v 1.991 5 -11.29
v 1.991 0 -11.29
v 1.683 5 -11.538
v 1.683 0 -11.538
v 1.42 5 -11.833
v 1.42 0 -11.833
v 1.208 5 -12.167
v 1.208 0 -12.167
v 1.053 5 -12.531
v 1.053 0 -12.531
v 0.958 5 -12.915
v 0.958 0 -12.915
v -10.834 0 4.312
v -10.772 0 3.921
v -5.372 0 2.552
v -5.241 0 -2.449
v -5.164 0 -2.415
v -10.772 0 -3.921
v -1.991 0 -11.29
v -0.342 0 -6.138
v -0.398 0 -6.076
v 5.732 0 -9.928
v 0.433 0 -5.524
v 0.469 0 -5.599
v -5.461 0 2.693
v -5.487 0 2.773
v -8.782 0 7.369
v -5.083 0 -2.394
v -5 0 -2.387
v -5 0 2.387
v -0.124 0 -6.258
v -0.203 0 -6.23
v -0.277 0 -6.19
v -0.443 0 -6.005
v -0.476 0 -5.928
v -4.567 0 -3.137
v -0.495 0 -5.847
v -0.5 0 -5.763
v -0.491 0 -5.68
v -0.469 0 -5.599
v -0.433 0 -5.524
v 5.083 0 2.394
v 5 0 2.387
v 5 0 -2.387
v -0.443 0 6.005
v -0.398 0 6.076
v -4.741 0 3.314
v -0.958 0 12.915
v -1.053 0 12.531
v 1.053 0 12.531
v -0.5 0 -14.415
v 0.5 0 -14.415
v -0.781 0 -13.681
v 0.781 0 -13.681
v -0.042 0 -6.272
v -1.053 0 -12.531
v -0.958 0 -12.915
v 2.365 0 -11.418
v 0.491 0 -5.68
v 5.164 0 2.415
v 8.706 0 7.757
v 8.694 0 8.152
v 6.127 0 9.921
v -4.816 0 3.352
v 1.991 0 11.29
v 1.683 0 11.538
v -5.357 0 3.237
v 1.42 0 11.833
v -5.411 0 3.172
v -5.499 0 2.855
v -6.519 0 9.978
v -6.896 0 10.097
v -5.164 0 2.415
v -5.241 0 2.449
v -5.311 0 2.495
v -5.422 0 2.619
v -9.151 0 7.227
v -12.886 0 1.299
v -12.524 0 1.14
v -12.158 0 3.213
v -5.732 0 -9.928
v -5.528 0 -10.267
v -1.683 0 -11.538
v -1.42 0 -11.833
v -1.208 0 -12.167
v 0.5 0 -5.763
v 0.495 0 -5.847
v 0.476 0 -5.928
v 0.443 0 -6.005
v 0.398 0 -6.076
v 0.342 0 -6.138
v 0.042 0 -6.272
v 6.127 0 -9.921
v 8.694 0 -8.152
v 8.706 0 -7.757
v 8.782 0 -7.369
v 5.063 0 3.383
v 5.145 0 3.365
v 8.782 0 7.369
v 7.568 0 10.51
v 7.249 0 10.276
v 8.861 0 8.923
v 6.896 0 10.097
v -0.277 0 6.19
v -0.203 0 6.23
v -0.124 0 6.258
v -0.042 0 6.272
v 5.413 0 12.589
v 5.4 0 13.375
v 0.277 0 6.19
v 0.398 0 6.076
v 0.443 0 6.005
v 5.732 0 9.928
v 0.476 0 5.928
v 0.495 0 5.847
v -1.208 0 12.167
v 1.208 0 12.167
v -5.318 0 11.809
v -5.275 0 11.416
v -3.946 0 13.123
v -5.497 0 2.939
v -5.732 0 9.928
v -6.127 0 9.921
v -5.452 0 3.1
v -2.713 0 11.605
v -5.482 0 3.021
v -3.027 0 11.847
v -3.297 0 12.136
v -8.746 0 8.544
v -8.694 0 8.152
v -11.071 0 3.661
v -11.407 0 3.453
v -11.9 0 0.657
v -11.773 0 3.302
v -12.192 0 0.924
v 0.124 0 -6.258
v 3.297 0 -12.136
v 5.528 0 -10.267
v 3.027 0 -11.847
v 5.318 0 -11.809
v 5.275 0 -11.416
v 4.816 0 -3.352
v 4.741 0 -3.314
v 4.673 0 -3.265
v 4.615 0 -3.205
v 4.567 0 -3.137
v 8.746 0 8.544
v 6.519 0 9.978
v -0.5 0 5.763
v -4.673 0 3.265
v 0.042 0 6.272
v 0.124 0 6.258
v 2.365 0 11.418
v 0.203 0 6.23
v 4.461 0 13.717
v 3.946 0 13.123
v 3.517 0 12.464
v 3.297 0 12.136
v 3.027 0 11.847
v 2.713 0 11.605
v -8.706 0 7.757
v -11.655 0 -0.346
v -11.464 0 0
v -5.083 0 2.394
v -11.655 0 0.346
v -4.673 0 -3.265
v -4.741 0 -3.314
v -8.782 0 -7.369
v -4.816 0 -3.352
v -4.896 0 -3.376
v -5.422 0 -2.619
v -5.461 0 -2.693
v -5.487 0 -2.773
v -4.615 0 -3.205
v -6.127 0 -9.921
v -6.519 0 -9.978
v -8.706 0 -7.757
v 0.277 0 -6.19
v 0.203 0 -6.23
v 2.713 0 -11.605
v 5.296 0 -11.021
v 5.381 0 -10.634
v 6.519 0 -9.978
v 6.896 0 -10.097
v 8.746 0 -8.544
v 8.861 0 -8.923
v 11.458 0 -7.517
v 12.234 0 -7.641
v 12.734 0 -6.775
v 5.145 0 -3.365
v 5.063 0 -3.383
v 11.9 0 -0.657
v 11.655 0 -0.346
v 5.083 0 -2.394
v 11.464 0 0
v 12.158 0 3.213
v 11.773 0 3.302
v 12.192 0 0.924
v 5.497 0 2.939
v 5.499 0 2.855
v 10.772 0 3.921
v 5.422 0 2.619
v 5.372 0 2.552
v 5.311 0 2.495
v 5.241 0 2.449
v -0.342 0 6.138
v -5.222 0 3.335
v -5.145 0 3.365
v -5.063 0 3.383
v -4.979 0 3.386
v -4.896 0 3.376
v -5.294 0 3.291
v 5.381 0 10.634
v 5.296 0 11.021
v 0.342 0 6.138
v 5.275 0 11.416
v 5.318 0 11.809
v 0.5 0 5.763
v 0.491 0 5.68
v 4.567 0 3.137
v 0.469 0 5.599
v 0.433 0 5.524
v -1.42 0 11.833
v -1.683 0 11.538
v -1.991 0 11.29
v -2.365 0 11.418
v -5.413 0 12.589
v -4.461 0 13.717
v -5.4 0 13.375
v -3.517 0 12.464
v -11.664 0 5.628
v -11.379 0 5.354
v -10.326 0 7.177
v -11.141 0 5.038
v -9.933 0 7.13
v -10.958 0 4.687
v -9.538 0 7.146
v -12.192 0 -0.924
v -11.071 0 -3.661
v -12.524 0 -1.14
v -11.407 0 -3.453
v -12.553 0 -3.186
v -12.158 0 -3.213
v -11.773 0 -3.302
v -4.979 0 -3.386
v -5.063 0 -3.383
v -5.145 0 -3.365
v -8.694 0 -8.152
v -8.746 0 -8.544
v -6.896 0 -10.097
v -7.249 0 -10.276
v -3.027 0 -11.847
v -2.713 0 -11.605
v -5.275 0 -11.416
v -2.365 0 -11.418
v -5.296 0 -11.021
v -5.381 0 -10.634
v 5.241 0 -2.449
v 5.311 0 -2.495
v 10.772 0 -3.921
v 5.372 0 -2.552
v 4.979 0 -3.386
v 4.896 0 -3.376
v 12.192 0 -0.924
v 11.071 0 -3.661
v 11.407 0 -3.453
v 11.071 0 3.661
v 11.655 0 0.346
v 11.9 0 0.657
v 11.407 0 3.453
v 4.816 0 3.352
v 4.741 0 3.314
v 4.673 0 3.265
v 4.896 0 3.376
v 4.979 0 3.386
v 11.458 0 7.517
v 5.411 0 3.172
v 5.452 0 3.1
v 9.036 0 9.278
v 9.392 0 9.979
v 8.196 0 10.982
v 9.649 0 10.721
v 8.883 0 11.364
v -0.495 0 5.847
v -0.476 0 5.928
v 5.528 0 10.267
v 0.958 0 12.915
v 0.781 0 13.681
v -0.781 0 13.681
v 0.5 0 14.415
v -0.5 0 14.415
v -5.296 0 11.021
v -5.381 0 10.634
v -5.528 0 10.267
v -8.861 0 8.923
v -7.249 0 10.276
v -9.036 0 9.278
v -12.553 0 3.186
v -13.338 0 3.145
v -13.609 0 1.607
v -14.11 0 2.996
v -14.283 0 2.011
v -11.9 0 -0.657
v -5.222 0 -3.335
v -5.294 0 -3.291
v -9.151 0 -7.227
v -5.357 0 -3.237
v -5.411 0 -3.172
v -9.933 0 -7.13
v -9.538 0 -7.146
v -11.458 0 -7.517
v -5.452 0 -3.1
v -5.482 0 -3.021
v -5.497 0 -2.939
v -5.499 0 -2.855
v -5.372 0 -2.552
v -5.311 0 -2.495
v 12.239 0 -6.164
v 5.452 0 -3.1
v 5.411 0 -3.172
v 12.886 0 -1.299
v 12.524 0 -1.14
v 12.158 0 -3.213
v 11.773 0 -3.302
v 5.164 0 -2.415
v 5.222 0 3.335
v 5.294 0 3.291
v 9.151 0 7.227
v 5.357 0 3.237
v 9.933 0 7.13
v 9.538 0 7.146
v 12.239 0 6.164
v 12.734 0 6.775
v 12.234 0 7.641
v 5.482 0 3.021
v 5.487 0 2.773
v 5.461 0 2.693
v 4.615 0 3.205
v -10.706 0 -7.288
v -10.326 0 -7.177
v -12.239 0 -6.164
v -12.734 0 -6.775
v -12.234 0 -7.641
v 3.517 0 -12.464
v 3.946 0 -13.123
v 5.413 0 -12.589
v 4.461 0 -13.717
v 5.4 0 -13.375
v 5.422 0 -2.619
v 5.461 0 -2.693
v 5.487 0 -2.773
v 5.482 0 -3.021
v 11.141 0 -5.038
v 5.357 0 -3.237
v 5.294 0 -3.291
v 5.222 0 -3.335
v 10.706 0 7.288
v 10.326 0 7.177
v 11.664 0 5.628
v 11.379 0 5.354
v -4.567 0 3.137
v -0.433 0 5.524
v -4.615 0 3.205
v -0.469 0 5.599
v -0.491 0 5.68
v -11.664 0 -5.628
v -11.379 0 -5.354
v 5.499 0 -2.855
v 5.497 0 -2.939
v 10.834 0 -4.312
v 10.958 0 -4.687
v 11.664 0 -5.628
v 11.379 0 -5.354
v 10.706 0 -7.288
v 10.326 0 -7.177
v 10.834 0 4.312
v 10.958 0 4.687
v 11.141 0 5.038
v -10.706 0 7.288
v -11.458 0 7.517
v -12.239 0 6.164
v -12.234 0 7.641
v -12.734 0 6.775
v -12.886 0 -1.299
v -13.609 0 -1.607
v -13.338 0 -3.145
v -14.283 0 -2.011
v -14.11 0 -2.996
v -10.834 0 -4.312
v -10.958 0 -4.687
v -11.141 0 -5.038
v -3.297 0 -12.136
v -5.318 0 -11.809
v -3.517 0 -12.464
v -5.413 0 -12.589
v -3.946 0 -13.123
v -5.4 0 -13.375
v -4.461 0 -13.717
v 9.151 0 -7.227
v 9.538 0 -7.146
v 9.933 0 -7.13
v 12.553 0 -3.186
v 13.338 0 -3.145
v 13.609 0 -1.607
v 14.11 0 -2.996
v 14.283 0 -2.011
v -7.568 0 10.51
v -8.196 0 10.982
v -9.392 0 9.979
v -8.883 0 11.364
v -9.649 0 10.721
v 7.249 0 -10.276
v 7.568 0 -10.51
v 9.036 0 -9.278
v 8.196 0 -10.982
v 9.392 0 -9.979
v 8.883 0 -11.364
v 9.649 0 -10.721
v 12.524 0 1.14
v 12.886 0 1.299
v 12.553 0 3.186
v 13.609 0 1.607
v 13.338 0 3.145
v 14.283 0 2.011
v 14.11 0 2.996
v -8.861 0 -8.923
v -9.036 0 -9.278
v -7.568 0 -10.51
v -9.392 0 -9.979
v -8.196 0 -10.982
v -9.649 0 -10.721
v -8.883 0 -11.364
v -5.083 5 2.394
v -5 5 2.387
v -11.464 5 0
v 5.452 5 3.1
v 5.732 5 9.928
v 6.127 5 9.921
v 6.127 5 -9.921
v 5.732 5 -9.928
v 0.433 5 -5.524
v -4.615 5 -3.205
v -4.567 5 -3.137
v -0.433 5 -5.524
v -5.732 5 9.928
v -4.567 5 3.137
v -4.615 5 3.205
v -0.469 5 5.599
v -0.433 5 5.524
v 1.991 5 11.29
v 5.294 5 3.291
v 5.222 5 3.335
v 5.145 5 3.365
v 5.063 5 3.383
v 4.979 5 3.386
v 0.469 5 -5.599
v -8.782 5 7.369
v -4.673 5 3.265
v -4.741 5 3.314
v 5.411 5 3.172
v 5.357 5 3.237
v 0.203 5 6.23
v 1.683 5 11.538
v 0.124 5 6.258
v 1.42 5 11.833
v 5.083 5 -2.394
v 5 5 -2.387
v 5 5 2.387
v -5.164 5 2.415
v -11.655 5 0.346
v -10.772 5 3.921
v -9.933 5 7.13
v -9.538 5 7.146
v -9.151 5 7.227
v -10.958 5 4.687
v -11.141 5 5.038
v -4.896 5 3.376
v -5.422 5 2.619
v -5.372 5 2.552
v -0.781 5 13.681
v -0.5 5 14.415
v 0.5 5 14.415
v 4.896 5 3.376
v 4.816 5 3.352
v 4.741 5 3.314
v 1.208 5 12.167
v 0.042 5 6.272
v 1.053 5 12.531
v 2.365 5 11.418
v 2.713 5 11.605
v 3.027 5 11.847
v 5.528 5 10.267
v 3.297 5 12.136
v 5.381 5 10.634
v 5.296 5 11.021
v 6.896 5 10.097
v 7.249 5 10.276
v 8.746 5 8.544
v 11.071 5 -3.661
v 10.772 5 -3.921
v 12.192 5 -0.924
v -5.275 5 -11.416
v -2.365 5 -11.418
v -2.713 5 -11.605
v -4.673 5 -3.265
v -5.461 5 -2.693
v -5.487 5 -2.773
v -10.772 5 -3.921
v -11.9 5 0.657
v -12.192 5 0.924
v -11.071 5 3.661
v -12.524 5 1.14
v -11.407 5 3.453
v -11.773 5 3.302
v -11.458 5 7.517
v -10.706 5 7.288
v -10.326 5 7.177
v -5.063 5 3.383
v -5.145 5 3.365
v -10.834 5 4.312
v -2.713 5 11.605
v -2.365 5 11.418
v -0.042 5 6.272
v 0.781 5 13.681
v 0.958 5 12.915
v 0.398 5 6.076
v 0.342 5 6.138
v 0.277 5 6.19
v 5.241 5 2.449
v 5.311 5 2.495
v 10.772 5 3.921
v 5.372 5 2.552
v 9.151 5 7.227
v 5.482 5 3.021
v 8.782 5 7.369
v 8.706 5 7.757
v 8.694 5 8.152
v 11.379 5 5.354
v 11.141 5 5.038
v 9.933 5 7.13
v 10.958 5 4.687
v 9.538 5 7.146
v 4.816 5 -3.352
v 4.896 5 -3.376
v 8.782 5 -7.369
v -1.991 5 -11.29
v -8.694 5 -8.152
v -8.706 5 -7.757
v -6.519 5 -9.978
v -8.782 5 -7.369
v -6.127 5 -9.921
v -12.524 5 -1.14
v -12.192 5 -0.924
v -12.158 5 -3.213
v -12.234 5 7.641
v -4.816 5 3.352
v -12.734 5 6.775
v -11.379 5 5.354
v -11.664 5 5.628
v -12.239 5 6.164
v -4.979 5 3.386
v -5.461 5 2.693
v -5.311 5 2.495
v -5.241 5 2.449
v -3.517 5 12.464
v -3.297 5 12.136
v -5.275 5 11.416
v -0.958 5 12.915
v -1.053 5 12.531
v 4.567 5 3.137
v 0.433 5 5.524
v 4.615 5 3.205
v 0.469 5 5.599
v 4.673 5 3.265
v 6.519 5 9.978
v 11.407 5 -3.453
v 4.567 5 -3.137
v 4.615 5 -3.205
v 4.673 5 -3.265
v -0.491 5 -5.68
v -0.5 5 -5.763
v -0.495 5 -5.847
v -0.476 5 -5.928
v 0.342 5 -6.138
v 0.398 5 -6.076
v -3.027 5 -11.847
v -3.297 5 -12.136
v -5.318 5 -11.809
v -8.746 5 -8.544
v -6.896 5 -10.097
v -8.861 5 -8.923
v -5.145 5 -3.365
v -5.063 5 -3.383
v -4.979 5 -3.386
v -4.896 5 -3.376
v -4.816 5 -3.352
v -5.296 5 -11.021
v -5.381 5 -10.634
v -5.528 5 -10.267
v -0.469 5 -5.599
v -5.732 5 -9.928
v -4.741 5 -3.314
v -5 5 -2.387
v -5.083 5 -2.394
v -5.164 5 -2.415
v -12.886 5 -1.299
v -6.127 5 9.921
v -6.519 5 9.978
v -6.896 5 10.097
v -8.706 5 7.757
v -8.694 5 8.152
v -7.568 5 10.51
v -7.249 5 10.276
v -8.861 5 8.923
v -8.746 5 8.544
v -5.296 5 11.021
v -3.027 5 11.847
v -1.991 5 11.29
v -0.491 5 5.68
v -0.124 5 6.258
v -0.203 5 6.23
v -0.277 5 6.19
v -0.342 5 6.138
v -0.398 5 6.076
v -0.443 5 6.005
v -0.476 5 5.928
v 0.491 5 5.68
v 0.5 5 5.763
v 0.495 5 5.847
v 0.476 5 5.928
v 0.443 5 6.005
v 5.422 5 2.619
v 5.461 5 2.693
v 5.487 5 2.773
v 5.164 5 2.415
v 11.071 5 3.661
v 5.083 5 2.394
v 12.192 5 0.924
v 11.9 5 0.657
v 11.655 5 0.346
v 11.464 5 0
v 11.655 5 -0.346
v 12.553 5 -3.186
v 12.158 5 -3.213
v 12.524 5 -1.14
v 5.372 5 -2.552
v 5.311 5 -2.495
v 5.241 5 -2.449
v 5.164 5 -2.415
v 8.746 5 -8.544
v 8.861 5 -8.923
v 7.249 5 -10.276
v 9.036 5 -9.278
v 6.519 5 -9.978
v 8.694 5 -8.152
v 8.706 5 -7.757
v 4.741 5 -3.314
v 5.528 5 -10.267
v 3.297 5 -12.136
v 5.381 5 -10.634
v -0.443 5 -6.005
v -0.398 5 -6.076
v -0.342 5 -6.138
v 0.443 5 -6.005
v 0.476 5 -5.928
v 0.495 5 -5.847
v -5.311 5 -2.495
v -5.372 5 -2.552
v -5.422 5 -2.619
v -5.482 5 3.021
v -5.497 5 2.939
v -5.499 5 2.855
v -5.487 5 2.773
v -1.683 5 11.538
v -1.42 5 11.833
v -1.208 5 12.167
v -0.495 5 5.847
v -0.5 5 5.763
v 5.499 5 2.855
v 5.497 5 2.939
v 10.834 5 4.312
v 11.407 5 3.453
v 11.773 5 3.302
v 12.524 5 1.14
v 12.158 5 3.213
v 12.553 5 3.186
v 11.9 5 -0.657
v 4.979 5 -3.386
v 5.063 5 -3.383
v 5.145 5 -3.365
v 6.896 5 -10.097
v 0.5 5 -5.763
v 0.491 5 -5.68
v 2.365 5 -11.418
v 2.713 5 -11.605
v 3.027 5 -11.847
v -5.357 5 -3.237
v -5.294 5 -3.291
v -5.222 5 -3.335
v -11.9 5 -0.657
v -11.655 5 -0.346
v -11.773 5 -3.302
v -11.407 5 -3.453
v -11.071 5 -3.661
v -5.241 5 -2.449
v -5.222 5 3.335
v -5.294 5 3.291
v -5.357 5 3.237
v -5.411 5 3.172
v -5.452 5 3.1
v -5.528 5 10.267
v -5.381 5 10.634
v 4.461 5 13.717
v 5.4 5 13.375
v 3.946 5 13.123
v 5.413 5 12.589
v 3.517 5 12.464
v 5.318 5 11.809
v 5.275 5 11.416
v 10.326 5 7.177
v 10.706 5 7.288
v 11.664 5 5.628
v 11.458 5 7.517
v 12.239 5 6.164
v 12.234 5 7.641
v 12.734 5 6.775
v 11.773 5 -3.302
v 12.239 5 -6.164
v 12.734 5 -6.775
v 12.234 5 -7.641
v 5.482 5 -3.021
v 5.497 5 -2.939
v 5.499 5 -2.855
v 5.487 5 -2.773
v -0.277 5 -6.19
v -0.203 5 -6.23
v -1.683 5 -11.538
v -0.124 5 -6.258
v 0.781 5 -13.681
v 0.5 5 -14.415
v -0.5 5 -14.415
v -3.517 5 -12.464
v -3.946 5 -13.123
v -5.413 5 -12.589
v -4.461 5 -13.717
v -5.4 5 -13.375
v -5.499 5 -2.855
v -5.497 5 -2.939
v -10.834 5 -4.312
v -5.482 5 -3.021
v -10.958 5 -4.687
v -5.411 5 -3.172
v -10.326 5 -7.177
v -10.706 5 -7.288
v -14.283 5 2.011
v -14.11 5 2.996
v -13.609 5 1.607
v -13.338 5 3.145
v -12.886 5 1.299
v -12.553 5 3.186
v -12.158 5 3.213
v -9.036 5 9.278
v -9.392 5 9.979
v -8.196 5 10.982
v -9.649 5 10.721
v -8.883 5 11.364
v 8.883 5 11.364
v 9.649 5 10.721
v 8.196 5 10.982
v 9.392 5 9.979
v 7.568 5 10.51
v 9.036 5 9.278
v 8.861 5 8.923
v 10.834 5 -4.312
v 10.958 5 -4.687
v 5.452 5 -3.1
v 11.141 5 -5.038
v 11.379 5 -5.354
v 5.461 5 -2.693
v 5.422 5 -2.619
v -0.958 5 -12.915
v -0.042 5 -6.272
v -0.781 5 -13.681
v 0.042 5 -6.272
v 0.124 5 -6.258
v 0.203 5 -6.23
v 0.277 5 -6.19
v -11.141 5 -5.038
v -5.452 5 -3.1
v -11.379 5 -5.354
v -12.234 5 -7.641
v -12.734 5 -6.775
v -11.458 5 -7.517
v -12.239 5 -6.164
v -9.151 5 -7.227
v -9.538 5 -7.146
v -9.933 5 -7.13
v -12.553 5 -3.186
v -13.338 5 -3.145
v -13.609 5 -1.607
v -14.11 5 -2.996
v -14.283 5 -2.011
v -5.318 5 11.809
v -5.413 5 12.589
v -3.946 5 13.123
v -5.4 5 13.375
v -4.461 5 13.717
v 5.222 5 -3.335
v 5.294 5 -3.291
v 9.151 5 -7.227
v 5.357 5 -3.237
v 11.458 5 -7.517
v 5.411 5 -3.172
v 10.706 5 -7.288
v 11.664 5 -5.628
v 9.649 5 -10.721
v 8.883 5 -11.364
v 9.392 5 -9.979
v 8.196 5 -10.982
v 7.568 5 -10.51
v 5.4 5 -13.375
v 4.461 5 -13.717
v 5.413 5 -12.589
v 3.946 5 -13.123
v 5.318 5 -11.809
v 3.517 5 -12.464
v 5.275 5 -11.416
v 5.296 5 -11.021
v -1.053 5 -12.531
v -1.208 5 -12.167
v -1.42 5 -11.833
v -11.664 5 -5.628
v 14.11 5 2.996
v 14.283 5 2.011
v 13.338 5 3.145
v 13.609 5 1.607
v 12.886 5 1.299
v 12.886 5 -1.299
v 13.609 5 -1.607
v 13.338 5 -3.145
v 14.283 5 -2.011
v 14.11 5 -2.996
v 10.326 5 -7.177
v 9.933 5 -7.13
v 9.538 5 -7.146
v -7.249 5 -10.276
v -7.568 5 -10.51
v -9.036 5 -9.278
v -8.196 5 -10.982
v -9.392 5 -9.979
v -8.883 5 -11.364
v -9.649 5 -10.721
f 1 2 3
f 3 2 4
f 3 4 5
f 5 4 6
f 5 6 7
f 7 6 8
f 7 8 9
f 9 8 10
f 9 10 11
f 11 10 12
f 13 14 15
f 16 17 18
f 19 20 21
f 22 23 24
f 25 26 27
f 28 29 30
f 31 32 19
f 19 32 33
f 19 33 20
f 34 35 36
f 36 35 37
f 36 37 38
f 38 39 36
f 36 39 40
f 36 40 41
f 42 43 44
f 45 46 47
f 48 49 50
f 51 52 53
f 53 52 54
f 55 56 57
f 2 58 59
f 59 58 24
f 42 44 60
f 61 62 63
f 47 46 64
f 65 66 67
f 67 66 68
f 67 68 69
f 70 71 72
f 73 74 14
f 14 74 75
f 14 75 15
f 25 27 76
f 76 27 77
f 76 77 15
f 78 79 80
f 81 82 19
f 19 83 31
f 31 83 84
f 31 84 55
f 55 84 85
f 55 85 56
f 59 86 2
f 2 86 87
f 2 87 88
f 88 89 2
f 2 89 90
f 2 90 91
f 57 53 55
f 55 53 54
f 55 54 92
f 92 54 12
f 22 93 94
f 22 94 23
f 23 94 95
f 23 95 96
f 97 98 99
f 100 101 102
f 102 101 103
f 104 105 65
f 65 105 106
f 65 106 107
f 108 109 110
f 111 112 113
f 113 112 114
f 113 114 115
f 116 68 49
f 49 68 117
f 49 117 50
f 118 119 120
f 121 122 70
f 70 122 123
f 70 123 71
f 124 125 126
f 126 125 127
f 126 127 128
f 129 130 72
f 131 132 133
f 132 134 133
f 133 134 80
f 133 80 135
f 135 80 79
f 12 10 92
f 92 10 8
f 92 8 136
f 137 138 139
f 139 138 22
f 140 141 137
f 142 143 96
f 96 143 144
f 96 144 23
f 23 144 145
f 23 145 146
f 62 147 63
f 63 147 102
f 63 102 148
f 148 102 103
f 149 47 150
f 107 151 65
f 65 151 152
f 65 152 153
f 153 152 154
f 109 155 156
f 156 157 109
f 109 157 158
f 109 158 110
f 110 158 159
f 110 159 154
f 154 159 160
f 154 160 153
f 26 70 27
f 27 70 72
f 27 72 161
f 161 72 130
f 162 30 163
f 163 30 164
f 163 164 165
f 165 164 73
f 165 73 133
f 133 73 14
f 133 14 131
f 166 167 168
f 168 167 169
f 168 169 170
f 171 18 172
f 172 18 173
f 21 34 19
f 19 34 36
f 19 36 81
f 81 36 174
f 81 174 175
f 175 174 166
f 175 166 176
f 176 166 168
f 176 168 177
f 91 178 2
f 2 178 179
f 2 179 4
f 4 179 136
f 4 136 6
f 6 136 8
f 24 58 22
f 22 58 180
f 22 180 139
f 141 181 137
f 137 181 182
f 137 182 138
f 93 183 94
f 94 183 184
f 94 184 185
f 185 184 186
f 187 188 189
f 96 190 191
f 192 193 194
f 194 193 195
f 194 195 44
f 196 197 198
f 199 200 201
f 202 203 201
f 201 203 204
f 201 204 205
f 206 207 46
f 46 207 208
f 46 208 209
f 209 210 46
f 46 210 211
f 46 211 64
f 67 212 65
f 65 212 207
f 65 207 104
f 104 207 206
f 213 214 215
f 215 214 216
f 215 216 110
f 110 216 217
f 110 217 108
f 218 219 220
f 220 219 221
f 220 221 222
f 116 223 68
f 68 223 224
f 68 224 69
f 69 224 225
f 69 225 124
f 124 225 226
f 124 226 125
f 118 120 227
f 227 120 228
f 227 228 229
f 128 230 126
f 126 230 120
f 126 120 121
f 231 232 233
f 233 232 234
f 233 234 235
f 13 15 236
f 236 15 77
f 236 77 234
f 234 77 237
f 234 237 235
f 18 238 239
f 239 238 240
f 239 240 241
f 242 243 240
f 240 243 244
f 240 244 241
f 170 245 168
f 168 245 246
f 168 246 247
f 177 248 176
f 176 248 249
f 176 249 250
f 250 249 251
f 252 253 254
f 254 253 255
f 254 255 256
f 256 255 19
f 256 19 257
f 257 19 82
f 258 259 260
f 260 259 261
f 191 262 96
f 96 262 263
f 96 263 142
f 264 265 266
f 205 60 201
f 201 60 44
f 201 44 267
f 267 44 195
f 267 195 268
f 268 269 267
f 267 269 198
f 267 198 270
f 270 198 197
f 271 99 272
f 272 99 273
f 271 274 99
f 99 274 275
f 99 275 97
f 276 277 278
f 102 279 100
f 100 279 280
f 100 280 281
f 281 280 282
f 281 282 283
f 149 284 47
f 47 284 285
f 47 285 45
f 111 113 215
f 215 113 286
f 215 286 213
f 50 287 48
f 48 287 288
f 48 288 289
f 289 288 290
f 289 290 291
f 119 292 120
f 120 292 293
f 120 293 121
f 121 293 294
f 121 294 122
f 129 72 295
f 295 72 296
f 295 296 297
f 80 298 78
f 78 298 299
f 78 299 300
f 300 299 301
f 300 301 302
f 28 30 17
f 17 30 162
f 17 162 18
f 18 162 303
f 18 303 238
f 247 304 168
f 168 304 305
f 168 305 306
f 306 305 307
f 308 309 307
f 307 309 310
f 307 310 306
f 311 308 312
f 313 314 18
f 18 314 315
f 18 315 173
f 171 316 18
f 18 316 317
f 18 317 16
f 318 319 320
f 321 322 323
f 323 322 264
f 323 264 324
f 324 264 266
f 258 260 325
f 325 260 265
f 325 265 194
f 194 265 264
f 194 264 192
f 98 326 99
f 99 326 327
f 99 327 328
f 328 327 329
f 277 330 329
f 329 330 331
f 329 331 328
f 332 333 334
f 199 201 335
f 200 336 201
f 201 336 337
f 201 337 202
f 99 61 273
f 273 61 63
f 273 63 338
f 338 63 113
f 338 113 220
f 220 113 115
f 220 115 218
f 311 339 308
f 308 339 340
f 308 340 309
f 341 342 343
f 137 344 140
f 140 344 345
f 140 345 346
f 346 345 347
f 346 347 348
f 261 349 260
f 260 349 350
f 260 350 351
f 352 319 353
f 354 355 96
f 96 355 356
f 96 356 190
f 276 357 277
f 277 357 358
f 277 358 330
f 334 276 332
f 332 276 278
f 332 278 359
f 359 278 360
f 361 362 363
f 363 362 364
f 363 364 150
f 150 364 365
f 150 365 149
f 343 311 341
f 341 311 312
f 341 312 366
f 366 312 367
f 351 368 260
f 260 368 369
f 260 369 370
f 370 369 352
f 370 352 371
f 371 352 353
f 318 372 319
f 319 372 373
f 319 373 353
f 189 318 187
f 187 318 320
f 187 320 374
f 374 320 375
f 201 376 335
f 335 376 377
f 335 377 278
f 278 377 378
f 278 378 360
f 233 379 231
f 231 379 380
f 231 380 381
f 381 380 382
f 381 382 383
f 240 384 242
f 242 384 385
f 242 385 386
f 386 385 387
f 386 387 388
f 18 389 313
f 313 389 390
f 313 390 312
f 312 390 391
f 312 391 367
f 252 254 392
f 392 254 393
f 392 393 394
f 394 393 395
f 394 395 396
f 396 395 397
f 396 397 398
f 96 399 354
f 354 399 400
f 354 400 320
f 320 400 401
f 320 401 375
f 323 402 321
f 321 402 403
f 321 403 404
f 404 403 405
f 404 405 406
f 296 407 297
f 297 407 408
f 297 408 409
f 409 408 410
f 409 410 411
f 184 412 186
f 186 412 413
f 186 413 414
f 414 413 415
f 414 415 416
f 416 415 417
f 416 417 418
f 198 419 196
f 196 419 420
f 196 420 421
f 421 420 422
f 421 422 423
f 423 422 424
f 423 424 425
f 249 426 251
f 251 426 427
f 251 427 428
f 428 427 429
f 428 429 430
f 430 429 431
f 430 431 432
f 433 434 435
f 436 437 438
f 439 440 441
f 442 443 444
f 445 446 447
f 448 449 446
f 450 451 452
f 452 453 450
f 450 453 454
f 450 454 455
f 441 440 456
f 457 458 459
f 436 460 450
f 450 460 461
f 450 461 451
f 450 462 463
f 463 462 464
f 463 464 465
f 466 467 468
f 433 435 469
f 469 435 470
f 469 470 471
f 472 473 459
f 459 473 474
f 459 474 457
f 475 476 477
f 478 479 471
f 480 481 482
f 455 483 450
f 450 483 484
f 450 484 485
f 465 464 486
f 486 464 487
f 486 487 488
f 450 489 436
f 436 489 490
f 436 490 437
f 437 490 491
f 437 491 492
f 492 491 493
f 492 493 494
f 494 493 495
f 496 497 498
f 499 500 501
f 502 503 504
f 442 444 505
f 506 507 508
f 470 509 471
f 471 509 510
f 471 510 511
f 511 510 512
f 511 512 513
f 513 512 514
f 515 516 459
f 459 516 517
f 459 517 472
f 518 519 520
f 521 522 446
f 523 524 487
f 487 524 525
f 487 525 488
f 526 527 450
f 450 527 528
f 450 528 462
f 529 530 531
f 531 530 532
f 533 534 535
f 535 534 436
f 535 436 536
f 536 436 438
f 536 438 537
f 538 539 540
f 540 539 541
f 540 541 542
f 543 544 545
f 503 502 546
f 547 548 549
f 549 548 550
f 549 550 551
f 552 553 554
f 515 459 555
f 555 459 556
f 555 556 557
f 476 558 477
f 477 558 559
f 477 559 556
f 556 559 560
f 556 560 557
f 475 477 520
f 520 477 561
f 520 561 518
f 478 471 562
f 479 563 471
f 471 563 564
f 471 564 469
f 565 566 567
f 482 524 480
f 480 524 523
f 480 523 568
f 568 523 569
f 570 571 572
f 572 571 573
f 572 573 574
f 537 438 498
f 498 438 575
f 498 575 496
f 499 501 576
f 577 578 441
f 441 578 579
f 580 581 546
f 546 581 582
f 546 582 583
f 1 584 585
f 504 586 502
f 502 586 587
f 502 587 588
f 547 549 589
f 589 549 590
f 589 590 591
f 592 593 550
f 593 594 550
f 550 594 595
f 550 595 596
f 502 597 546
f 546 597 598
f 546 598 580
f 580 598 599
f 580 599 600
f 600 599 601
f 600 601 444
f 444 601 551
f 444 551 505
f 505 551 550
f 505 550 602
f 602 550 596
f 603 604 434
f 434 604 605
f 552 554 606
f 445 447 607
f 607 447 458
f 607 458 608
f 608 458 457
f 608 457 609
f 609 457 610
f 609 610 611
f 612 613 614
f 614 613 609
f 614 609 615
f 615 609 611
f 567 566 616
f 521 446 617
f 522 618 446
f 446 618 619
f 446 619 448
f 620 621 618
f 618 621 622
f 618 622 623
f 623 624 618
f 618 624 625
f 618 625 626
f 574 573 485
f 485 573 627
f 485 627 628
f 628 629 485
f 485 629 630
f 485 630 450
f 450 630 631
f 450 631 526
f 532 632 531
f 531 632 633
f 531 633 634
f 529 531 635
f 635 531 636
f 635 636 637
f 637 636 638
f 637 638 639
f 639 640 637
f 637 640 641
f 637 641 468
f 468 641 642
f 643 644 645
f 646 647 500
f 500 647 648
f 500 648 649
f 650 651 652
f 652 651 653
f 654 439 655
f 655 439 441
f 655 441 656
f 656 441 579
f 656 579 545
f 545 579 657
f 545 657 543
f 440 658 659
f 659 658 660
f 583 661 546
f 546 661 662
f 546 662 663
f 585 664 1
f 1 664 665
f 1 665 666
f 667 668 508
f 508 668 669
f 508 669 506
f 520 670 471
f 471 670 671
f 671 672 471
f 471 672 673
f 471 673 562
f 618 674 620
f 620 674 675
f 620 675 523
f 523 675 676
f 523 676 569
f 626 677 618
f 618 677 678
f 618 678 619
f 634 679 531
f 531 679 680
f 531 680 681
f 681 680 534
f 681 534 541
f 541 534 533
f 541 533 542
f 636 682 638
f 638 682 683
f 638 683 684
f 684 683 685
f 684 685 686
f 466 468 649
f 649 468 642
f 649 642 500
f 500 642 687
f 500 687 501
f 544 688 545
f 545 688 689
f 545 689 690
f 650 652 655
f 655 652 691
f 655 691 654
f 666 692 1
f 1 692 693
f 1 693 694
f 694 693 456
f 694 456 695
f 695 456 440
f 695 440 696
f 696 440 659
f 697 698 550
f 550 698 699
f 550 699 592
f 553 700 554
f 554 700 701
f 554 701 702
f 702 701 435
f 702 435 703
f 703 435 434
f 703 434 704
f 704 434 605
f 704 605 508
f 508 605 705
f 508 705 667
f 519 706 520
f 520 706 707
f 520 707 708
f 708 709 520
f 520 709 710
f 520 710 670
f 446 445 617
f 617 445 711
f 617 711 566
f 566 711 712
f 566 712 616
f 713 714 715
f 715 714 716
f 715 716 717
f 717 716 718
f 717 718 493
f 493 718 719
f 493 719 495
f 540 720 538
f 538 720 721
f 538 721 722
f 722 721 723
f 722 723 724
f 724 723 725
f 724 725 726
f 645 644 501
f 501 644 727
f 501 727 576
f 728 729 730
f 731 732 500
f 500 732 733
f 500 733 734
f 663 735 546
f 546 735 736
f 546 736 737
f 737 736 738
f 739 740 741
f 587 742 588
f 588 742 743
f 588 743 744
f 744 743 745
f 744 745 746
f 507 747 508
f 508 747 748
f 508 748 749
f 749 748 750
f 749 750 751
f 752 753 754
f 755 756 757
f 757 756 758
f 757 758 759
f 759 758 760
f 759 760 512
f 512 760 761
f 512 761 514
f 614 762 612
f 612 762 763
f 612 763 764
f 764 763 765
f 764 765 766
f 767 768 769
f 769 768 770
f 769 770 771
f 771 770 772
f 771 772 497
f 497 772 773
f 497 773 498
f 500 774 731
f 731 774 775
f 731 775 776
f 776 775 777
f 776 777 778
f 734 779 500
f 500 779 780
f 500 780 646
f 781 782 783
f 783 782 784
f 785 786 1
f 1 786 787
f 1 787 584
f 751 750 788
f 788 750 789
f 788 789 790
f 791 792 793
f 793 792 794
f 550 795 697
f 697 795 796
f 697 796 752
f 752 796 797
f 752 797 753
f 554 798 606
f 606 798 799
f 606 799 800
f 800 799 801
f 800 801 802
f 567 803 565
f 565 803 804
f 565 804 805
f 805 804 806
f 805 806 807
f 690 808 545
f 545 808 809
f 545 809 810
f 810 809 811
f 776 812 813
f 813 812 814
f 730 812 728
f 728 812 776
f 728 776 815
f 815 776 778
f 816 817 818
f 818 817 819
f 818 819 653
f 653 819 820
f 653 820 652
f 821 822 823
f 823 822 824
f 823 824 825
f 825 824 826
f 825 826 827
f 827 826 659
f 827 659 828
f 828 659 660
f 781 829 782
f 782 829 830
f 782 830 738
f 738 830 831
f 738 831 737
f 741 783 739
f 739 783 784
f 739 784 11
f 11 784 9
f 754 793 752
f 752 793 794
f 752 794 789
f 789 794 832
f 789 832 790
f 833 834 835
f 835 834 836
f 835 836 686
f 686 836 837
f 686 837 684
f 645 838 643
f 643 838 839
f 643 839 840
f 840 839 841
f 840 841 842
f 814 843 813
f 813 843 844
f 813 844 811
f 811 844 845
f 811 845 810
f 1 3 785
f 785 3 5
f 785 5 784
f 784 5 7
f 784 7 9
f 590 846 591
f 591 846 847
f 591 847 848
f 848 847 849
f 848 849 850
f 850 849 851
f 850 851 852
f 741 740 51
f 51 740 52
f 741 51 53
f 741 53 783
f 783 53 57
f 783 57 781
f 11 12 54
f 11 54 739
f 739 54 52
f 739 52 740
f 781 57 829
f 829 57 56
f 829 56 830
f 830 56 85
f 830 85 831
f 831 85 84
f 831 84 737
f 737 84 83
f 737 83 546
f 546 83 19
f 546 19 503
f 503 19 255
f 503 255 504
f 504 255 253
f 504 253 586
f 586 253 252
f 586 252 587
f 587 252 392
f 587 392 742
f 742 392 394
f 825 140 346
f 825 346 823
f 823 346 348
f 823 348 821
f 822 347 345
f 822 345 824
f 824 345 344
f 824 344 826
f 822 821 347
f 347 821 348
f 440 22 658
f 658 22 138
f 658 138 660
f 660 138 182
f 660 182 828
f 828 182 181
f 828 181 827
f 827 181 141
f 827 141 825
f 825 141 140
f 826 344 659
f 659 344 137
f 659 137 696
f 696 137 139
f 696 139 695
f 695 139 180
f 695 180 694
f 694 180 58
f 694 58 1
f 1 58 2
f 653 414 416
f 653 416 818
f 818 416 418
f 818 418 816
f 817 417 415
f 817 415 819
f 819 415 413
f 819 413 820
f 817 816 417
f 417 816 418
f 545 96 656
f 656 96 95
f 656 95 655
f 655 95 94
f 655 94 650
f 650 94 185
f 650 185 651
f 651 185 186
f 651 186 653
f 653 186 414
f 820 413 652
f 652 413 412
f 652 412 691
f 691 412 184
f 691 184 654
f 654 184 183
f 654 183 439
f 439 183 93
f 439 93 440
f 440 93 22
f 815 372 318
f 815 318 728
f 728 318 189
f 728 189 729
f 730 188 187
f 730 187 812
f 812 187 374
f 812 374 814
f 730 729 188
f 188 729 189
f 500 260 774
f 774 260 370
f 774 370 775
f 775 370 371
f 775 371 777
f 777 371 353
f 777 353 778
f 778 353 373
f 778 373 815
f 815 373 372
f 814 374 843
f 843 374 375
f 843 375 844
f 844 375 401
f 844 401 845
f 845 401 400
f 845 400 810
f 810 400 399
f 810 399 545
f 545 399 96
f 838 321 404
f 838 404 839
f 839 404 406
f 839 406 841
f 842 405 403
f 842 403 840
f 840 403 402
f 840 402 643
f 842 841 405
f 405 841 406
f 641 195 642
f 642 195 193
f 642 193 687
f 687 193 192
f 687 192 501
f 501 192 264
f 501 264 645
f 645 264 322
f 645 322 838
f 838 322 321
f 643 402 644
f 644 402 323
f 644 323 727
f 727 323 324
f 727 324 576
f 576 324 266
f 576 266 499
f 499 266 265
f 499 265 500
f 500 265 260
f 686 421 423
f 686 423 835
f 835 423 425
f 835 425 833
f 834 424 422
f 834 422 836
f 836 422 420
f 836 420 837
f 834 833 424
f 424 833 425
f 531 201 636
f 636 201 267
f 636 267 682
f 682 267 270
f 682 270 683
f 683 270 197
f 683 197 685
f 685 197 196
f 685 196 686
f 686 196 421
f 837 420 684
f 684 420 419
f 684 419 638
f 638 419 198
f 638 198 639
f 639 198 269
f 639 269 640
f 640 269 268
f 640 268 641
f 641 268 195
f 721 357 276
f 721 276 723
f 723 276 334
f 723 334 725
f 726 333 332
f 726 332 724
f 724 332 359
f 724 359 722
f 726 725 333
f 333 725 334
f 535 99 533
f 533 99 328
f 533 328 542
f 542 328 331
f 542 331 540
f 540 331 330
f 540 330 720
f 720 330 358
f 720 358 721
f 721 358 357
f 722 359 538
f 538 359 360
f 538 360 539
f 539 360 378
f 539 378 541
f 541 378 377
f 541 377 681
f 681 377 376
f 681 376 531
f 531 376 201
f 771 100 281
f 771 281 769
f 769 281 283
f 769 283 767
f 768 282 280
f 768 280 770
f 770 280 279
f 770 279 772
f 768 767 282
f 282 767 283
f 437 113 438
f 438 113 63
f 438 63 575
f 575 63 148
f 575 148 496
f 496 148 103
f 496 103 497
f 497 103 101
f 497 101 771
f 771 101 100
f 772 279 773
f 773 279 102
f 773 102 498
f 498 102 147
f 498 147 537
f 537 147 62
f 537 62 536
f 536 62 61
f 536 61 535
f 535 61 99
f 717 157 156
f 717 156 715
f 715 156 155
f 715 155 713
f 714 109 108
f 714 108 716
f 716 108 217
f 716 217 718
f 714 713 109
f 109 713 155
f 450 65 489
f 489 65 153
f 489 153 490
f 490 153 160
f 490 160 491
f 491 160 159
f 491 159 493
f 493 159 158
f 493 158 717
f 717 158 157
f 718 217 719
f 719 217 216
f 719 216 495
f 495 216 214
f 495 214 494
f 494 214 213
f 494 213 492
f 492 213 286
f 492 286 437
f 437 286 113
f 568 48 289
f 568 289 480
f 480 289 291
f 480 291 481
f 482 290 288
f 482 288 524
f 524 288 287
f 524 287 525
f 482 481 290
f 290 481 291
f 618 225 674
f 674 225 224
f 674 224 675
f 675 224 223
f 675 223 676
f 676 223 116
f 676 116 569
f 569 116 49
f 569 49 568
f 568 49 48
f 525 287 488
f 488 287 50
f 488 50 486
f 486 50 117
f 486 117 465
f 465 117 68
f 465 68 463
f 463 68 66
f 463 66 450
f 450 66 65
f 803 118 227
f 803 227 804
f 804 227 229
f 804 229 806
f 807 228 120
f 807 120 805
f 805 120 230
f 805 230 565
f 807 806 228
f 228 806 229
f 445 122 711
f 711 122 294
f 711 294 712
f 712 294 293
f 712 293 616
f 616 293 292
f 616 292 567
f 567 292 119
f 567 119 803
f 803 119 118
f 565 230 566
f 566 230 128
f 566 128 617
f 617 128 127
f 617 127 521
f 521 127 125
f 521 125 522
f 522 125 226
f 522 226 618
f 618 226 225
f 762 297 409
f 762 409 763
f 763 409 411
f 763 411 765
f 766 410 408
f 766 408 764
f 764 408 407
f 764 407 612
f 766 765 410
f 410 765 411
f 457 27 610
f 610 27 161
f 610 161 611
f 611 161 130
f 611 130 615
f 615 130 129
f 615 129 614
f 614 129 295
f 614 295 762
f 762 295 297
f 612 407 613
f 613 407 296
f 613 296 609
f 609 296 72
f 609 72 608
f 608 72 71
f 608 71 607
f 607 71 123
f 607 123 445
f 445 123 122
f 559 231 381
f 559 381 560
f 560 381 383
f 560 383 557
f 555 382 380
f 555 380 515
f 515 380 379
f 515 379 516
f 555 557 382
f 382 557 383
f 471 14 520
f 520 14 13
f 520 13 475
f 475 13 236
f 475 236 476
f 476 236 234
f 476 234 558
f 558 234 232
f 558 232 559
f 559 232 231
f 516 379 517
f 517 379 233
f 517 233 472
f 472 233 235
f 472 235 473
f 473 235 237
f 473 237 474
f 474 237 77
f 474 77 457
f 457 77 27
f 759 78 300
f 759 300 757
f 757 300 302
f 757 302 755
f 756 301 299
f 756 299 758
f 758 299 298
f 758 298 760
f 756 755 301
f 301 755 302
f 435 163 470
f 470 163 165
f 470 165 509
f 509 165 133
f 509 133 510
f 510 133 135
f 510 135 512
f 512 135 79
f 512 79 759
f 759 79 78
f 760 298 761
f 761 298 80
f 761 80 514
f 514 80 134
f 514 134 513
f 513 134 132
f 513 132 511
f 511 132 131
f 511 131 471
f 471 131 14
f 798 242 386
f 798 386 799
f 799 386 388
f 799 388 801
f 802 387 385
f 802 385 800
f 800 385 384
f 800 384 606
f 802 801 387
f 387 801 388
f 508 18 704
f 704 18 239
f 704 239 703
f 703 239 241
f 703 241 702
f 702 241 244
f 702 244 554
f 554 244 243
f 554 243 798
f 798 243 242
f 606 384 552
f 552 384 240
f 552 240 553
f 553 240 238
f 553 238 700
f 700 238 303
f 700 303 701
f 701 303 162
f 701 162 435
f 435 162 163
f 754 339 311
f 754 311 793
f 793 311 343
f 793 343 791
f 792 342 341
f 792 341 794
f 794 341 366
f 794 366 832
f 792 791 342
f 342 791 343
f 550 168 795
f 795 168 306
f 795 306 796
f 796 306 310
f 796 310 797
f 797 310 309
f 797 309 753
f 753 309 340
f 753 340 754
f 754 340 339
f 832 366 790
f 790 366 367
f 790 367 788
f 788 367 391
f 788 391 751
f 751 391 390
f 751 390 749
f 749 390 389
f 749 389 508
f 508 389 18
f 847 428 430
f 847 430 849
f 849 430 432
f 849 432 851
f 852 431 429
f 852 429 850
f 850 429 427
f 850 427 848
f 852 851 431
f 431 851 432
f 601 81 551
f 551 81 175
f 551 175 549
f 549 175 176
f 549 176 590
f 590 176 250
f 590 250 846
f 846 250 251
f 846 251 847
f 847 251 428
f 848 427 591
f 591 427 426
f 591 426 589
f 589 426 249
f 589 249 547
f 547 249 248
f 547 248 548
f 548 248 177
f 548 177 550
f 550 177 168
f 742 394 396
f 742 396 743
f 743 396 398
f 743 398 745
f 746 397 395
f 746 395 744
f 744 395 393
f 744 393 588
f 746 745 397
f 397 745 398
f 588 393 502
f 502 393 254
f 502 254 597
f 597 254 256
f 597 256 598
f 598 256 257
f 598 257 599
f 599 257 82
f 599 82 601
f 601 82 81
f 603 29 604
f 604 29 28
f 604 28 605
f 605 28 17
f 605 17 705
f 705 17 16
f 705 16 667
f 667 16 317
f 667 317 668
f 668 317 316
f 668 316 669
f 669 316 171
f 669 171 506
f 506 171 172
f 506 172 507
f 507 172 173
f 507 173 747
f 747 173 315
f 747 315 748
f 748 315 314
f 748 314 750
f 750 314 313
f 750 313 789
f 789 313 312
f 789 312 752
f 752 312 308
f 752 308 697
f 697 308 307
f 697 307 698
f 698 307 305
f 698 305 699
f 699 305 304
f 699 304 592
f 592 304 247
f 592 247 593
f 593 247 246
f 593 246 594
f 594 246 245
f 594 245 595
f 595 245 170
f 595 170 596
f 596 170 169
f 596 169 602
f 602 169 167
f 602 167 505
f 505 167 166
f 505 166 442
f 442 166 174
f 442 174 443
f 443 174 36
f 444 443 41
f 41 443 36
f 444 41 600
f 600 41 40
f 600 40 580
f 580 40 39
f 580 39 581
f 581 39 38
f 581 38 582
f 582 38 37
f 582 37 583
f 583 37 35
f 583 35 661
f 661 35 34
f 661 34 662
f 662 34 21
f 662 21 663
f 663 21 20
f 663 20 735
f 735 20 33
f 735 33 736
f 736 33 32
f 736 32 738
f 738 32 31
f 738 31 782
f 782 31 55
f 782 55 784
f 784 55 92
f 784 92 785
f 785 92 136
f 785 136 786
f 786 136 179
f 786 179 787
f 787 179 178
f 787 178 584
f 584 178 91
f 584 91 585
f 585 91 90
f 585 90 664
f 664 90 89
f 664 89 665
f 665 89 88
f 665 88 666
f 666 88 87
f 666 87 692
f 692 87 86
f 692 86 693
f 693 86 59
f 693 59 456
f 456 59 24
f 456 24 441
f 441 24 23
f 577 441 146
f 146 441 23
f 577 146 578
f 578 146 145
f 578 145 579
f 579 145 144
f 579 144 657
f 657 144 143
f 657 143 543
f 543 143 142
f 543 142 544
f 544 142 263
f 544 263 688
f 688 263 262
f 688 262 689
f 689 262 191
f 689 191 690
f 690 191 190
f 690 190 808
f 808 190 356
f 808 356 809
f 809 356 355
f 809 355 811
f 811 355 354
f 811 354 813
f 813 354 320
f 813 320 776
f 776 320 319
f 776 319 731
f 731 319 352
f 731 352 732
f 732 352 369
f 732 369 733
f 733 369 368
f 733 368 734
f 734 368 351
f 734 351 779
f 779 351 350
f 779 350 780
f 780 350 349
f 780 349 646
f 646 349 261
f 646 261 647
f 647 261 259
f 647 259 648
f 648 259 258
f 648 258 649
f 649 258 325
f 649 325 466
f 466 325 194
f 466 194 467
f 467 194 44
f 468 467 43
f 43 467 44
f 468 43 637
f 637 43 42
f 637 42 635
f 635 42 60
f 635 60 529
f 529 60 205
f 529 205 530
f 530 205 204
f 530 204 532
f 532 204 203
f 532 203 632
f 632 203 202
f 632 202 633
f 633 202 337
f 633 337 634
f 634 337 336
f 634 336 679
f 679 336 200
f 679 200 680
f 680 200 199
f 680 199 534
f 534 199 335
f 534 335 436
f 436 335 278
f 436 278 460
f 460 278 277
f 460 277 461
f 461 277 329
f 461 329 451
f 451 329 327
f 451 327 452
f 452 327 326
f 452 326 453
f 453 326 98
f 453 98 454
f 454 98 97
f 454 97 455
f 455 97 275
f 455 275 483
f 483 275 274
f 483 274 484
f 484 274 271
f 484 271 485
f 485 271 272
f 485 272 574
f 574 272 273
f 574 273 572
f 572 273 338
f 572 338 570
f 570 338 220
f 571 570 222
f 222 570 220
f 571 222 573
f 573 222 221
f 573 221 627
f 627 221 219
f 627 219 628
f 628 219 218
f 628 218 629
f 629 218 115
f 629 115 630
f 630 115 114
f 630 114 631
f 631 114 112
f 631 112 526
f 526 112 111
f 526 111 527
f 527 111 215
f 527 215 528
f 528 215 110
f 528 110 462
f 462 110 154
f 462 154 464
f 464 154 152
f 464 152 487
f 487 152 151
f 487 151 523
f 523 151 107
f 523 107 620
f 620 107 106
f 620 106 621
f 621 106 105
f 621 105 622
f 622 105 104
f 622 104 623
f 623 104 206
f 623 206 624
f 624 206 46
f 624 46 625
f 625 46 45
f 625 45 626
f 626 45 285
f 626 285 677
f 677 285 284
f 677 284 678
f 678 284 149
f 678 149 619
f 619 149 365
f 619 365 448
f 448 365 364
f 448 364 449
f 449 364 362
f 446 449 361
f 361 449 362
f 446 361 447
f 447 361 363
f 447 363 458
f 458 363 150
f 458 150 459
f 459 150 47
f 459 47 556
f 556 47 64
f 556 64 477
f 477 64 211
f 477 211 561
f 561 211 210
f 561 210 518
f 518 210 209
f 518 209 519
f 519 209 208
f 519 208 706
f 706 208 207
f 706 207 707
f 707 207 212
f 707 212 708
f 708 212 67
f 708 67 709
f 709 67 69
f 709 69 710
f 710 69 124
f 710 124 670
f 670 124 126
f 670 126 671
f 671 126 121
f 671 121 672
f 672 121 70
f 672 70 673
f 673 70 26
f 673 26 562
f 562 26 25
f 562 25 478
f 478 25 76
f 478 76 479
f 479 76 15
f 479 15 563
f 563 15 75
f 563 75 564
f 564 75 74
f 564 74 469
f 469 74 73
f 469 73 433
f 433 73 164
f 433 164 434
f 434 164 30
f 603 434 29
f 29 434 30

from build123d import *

# Parameters (mm, degrees)
BOSS_EXTRUDE1_DEPTH = 5
CIRPATTERN2_COUNT   = 18
BOSS_EXTRUDE3_DEPTH = 5


with BuildPart() as part:
    # Sketch1 → Boss-Extrude1 (new body)
    with BuildSketch(Plane(origin=(0, 0, 0), x_dir=(1, 0, 0), z_dir=(0, 1, 0))):
        with BuildLine():
            Line((0.5, 14.415439282), (-0.5, 14.415439282))
            ThreePointArc((-0.5, 14.415439282), (-0.952778657, 12.949235725), (-1, 11.415439282))
            Line((-1, 11.415439282), (1, 11.415439282))
            ThreePointArc((1, 11.415439282), (0.952778657, 12.949235725), (0.5, 14.415439282))
        make_face()
        with BuildLine():
            Line((0, 12.915439282), (0.9583076, 12.915439282))
            ThreePointArc((0.9583076, 12.915439282), (1.309947673, 11.991364327), (2, 11.283273195))
            Line((2, 11.283273195), (-2, 11.283273195))
            ThreePointArc((-2, 11.283273195), (-1.309947673, 11.991364327), (-0.9583076, 12.915439282))
            Line((-0.9583076, 12.915439282), (0, 12.915439282))
        make_face()
    boss_extrude1 = extrude(amount=BOSS_EXTRUDE1_DEPTH)

    # CirPattern2: Boss-Extrude1 ×18 about axis
    cirpattern2_axis = Axis((0, 0, 0), (0, 1, 0))
    for i in range(1, CIRPATTERN2_COUNT):
        add(boss_extrude1.rotate(cirpattern2_axis, i * 360 / CIRPATTERN2_COUNT))

    # Sketch1<5> → Boss-Extrude3 (add)
    with BuildSketch(Plane(origin=(0, 0, 0), x_dir=(1, 0, 0), z_dir=(0, 1, 0))):
        with BuildLine():
            ThreePointArc((11.459155903, 0), (8.781530784, 7.361859215), (2, 11.283273195))
            Line((2, 11.283273195), (-2, 11.283273195))
            ThreePointArc((-2, 11.283273195), (-7.361859215, -8.781530784), (11.459155903, 0))
        make_face()
        with BuildLine():
            Line((-0.433012702, -5.523502692), (-2.500000064, -4.330126982))
            Line((-2.500000064, -4.330126982), (-4.566987298, -3.136751346))
            ThreePointArc((-4.566987298, -3.136751346), (-5.433012702, -3.136751346), (-5, -2.386751346))
            Line((-5, -2.386751346), (-5, -2e-09))
            Line((-5, -2e-09), (-5, 2.386751346))
            ThreePointArc((-5, 2.386751346), (-5.433012702, 3.136751346), (-4.566987298, 3.136751346))
            Line((-4.566987298, 3.136751346), (-2.499999953, 4.330127046))
            Line((-2.499999953, 4.330127046), (-0.433012702, 5.523502692))
            ThreePointArc((-0.433012702, 5.523502692), (-0.129409523, 6.256465605), (0.5, 5.773502692))
            ThreePointArc((0.5, 5.773502692), (0.482962913, 5.644093169), (0.433012702, 5.523502692))
            Line((0.433012702, 5.523502692), (2.500000011, 4.330127013))
            Line((2.500000011, 4.330127013), (4.566987298, 3.136751346))
            ThreePointArc((4.566987298, 3.136751346), (5.129409523, 3.369714259), (5.5, 2.886751346))
            ThreePointArc((5.5, 2.886751346), (5.353553391, 2.533197955), (5, 2.386751346))
            Line((5, 2.386751346), (5, 0))
            Line((5, 0), (5, -2.386751346))
            ThreePointArc((5, -2.386751346), (5.353553391, -2.533197955), (5.5, -2.886751346))
            ThreePointArc((5.5, -2.886751346), (5.129409523, -3.369714259), (4.566987298, -3.136751346))
            Line((4.566987298, -3.136751346), (2.499999978, -4.330127032))
            Line((2.499999978, -4.330127032), (0.433012702, -5.523502692))
            ThreePointArc((0.433012702, -5.523502692), (0.482962913, -5.644093169), (0.5, -5.773502692))
            ThreePointArc((0.5, -5.773502692), (-0.129409523, -6.256465605), (-0.433012702, -5.523502692))
        make_face(mode=Mode.SUBTRACT)
    extrude(amount=BOSS_EXTRUDE3_DEPTH)


solid = part.part
